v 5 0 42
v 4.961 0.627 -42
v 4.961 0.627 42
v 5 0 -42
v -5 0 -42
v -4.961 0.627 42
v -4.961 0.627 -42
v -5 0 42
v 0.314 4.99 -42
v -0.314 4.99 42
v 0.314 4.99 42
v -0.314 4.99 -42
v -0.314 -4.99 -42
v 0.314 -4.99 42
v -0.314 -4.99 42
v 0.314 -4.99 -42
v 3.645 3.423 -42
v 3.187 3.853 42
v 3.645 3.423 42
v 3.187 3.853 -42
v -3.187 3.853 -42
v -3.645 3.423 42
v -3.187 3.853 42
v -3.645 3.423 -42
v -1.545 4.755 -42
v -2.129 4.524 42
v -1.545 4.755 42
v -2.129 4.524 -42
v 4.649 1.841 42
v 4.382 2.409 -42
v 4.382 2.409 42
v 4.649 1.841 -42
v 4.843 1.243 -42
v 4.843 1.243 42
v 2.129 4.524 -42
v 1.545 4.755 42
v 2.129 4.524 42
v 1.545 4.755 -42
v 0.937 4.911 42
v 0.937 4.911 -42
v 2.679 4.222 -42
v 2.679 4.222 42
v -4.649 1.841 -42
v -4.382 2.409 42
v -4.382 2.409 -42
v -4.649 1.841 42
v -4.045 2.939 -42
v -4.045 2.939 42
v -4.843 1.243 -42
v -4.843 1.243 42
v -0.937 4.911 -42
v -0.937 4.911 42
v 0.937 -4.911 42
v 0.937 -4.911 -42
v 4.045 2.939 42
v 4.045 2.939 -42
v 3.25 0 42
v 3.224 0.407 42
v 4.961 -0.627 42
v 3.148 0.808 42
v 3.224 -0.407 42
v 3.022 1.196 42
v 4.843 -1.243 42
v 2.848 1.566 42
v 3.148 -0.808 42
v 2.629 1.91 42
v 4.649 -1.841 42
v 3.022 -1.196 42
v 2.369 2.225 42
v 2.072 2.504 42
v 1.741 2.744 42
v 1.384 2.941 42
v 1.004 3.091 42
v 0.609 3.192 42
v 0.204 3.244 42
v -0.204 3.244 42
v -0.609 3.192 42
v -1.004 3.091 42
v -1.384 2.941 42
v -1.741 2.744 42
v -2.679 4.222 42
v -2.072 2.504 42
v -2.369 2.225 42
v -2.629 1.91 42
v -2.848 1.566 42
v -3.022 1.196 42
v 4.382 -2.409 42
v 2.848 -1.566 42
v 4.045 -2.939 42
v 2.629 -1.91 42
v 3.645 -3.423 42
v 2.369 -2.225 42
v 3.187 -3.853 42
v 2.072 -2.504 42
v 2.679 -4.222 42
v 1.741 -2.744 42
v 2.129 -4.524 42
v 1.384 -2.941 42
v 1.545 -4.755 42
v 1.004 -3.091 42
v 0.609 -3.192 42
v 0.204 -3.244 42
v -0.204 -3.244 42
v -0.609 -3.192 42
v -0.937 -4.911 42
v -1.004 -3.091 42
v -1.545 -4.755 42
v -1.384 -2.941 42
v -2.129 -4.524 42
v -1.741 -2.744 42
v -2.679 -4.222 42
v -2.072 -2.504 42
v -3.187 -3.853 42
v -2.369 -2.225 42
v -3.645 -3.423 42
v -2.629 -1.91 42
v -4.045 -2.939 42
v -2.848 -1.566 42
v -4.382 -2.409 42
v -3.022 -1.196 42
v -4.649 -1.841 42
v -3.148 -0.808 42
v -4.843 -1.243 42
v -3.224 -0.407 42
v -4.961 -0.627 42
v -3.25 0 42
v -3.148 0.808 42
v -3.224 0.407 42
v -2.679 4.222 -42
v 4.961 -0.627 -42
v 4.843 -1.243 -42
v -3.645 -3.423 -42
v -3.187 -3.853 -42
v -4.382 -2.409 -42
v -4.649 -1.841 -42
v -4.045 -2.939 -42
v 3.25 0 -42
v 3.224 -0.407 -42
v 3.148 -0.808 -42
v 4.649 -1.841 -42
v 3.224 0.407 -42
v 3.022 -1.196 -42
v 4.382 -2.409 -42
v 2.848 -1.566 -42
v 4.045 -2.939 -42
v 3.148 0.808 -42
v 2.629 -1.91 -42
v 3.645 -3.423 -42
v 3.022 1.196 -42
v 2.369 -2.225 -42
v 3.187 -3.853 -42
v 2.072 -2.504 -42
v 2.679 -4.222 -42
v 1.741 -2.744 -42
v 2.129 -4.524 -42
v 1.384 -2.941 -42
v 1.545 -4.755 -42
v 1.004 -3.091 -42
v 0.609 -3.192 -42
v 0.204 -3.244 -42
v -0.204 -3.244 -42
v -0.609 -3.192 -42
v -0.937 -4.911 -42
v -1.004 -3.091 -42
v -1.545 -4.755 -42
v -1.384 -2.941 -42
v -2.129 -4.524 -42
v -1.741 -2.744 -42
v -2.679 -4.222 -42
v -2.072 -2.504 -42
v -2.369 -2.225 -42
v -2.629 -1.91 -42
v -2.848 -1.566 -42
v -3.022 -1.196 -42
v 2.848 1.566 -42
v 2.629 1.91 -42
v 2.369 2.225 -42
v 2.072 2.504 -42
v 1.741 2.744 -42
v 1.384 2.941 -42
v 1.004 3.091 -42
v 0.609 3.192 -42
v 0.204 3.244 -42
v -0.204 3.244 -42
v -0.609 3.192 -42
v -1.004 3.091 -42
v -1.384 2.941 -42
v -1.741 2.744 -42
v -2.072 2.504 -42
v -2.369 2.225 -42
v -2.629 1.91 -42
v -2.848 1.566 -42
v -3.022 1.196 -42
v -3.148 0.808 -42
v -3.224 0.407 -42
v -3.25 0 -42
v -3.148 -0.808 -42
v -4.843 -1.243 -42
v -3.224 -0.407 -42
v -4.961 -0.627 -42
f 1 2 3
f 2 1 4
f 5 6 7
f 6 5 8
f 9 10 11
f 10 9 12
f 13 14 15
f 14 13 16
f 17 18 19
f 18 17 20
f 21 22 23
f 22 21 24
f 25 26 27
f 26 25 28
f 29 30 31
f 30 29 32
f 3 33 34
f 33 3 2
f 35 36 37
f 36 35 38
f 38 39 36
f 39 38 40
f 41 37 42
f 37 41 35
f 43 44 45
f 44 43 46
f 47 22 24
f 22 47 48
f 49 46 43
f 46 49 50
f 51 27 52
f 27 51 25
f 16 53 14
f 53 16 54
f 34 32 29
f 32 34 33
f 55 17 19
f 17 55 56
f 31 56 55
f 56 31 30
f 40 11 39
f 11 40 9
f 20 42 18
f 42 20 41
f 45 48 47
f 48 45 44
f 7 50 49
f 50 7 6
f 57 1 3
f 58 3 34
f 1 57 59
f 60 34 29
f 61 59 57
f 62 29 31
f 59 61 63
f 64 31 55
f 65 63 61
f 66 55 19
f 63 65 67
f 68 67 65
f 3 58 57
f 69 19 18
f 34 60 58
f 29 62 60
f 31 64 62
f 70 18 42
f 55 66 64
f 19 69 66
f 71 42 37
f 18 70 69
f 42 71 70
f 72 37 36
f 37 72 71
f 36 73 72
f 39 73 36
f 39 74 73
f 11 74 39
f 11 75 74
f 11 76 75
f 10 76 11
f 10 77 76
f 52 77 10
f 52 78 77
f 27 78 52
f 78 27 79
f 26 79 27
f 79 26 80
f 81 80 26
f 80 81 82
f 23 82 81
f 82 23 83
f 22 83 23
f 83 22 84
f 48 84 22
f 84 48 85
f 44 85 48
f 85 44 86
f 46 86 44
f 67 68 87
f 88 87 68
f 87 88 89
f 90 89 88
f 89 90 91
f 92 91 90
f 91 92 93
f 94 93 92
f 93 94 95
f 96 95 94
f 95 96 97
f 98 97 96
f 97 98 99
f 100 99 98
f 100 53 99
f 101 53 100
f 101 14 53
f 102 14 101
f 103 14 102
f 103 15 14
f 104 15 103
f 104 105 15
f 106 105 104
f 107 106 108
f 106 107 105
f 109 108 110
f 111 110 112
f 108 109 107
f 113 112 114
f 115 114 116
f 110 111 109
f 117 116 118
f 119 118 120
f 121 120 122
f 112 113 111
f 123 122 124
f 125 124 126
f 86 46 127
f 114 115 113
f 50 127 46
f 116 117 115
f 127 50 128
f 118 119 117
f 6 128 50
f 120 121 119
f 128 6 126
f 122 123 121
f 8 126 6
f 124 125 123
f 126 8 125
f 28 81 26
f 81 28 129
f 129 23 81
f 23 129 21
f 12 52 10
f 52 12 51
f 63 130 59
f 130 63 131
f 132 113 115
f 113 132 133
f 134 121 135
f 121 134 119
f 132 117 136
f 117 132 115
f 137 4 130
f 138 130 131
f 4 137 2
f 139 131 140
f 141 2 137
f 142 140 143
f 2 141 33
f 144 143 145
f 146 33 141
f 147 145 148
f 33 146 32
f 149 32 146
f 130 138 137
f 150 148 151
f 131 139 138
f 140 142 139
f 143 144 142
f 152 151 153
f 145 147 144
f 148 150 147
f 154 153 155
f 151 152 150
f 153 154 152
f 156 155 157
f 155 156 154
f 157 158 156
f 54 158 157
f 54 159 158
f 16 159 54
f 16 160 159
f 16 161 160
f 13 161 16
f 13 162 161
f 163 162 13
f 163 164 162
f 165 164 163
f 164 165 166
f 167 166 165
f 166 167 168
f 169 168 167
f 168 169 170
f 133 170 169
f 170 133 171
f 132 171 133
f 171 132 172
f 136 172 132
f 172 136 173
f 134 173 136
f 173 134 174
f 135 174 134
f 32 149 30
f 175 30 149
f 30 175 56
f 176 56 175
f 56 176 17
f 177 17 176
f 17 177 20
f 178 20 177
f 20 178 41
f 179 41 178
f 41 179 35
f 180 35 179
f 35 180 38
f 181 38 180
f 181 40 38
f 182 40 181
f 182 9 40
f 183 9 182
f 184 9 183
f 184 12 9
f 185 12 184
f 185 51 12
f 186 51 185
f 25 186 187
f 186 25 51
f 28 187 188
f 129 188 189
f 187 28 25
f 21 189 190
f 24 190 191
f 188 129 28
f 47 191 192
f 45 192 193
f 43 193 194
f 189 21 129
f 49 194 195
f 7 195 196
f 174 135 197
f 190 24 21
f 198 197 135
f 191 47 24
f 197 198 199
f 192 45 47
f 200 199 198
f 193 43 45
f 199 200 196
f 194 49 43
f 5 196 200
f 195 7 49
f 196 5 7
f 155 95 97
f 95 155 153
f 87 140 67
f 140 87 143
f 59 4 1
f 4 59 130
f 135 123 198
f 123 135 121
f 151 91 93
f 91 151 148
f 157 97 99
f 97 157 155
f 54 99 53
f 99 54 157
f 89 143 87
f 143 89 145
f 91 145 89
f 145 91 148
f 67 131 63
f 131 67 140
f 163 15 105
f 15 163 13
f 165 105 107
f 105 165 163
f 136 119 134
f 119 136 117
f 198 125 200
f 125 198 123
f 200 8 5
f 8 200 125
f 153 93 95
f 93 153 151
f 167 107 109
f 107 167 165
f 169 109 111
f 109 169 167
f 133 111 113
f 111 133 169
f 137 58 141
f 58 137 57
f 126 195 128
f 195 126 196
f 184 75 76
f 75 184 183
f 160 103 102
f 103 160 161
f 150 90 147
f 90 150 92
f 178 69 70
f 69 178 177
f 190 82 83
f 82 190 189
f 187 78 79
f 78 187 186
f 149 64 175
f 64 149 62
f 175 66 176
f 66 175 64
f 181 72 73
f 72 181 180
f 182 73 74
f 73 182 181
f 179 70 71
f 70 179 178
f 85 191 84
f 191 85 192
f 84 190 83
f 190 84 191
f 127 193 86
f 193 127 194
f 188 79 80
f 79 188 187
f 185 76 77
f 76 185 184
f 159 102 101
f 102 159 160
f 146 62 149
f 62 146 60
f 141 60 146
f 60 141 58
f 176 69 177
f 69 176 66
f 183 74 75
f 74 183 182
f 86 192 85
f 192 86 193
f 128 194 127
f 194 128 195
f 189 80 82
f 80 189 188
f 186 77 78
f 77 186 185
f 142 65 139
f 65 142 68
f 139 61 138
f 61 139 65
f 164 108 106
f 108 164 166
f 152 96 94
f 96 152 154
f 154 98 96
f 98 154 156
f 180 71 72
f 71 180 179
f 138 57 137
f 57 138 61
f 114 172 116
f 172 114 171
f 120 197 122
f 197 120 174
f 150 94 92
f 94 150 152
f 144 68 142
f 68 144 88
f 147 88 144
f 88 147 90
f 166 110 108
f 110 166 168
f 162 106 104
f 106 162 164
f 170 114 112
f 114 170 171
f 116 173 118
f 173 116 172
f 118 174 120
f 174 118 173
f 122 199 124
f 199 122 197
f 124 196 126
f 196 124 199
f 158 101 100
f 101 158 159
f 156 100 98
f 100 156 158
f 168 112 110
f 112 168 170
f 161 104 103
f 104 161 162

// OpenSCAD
$fn = 50;


difference() {
	union() {
		translate(v = [0, 0, -42.0000000000]) {
			cylinder(h = 84, r = 5.0000000000);
		}
	}
	union() {
		translate(v = [0, 0, -100.0000000000]) {
			cylinder(h = 200, r = 3.2500000000);
		}
	}
}
